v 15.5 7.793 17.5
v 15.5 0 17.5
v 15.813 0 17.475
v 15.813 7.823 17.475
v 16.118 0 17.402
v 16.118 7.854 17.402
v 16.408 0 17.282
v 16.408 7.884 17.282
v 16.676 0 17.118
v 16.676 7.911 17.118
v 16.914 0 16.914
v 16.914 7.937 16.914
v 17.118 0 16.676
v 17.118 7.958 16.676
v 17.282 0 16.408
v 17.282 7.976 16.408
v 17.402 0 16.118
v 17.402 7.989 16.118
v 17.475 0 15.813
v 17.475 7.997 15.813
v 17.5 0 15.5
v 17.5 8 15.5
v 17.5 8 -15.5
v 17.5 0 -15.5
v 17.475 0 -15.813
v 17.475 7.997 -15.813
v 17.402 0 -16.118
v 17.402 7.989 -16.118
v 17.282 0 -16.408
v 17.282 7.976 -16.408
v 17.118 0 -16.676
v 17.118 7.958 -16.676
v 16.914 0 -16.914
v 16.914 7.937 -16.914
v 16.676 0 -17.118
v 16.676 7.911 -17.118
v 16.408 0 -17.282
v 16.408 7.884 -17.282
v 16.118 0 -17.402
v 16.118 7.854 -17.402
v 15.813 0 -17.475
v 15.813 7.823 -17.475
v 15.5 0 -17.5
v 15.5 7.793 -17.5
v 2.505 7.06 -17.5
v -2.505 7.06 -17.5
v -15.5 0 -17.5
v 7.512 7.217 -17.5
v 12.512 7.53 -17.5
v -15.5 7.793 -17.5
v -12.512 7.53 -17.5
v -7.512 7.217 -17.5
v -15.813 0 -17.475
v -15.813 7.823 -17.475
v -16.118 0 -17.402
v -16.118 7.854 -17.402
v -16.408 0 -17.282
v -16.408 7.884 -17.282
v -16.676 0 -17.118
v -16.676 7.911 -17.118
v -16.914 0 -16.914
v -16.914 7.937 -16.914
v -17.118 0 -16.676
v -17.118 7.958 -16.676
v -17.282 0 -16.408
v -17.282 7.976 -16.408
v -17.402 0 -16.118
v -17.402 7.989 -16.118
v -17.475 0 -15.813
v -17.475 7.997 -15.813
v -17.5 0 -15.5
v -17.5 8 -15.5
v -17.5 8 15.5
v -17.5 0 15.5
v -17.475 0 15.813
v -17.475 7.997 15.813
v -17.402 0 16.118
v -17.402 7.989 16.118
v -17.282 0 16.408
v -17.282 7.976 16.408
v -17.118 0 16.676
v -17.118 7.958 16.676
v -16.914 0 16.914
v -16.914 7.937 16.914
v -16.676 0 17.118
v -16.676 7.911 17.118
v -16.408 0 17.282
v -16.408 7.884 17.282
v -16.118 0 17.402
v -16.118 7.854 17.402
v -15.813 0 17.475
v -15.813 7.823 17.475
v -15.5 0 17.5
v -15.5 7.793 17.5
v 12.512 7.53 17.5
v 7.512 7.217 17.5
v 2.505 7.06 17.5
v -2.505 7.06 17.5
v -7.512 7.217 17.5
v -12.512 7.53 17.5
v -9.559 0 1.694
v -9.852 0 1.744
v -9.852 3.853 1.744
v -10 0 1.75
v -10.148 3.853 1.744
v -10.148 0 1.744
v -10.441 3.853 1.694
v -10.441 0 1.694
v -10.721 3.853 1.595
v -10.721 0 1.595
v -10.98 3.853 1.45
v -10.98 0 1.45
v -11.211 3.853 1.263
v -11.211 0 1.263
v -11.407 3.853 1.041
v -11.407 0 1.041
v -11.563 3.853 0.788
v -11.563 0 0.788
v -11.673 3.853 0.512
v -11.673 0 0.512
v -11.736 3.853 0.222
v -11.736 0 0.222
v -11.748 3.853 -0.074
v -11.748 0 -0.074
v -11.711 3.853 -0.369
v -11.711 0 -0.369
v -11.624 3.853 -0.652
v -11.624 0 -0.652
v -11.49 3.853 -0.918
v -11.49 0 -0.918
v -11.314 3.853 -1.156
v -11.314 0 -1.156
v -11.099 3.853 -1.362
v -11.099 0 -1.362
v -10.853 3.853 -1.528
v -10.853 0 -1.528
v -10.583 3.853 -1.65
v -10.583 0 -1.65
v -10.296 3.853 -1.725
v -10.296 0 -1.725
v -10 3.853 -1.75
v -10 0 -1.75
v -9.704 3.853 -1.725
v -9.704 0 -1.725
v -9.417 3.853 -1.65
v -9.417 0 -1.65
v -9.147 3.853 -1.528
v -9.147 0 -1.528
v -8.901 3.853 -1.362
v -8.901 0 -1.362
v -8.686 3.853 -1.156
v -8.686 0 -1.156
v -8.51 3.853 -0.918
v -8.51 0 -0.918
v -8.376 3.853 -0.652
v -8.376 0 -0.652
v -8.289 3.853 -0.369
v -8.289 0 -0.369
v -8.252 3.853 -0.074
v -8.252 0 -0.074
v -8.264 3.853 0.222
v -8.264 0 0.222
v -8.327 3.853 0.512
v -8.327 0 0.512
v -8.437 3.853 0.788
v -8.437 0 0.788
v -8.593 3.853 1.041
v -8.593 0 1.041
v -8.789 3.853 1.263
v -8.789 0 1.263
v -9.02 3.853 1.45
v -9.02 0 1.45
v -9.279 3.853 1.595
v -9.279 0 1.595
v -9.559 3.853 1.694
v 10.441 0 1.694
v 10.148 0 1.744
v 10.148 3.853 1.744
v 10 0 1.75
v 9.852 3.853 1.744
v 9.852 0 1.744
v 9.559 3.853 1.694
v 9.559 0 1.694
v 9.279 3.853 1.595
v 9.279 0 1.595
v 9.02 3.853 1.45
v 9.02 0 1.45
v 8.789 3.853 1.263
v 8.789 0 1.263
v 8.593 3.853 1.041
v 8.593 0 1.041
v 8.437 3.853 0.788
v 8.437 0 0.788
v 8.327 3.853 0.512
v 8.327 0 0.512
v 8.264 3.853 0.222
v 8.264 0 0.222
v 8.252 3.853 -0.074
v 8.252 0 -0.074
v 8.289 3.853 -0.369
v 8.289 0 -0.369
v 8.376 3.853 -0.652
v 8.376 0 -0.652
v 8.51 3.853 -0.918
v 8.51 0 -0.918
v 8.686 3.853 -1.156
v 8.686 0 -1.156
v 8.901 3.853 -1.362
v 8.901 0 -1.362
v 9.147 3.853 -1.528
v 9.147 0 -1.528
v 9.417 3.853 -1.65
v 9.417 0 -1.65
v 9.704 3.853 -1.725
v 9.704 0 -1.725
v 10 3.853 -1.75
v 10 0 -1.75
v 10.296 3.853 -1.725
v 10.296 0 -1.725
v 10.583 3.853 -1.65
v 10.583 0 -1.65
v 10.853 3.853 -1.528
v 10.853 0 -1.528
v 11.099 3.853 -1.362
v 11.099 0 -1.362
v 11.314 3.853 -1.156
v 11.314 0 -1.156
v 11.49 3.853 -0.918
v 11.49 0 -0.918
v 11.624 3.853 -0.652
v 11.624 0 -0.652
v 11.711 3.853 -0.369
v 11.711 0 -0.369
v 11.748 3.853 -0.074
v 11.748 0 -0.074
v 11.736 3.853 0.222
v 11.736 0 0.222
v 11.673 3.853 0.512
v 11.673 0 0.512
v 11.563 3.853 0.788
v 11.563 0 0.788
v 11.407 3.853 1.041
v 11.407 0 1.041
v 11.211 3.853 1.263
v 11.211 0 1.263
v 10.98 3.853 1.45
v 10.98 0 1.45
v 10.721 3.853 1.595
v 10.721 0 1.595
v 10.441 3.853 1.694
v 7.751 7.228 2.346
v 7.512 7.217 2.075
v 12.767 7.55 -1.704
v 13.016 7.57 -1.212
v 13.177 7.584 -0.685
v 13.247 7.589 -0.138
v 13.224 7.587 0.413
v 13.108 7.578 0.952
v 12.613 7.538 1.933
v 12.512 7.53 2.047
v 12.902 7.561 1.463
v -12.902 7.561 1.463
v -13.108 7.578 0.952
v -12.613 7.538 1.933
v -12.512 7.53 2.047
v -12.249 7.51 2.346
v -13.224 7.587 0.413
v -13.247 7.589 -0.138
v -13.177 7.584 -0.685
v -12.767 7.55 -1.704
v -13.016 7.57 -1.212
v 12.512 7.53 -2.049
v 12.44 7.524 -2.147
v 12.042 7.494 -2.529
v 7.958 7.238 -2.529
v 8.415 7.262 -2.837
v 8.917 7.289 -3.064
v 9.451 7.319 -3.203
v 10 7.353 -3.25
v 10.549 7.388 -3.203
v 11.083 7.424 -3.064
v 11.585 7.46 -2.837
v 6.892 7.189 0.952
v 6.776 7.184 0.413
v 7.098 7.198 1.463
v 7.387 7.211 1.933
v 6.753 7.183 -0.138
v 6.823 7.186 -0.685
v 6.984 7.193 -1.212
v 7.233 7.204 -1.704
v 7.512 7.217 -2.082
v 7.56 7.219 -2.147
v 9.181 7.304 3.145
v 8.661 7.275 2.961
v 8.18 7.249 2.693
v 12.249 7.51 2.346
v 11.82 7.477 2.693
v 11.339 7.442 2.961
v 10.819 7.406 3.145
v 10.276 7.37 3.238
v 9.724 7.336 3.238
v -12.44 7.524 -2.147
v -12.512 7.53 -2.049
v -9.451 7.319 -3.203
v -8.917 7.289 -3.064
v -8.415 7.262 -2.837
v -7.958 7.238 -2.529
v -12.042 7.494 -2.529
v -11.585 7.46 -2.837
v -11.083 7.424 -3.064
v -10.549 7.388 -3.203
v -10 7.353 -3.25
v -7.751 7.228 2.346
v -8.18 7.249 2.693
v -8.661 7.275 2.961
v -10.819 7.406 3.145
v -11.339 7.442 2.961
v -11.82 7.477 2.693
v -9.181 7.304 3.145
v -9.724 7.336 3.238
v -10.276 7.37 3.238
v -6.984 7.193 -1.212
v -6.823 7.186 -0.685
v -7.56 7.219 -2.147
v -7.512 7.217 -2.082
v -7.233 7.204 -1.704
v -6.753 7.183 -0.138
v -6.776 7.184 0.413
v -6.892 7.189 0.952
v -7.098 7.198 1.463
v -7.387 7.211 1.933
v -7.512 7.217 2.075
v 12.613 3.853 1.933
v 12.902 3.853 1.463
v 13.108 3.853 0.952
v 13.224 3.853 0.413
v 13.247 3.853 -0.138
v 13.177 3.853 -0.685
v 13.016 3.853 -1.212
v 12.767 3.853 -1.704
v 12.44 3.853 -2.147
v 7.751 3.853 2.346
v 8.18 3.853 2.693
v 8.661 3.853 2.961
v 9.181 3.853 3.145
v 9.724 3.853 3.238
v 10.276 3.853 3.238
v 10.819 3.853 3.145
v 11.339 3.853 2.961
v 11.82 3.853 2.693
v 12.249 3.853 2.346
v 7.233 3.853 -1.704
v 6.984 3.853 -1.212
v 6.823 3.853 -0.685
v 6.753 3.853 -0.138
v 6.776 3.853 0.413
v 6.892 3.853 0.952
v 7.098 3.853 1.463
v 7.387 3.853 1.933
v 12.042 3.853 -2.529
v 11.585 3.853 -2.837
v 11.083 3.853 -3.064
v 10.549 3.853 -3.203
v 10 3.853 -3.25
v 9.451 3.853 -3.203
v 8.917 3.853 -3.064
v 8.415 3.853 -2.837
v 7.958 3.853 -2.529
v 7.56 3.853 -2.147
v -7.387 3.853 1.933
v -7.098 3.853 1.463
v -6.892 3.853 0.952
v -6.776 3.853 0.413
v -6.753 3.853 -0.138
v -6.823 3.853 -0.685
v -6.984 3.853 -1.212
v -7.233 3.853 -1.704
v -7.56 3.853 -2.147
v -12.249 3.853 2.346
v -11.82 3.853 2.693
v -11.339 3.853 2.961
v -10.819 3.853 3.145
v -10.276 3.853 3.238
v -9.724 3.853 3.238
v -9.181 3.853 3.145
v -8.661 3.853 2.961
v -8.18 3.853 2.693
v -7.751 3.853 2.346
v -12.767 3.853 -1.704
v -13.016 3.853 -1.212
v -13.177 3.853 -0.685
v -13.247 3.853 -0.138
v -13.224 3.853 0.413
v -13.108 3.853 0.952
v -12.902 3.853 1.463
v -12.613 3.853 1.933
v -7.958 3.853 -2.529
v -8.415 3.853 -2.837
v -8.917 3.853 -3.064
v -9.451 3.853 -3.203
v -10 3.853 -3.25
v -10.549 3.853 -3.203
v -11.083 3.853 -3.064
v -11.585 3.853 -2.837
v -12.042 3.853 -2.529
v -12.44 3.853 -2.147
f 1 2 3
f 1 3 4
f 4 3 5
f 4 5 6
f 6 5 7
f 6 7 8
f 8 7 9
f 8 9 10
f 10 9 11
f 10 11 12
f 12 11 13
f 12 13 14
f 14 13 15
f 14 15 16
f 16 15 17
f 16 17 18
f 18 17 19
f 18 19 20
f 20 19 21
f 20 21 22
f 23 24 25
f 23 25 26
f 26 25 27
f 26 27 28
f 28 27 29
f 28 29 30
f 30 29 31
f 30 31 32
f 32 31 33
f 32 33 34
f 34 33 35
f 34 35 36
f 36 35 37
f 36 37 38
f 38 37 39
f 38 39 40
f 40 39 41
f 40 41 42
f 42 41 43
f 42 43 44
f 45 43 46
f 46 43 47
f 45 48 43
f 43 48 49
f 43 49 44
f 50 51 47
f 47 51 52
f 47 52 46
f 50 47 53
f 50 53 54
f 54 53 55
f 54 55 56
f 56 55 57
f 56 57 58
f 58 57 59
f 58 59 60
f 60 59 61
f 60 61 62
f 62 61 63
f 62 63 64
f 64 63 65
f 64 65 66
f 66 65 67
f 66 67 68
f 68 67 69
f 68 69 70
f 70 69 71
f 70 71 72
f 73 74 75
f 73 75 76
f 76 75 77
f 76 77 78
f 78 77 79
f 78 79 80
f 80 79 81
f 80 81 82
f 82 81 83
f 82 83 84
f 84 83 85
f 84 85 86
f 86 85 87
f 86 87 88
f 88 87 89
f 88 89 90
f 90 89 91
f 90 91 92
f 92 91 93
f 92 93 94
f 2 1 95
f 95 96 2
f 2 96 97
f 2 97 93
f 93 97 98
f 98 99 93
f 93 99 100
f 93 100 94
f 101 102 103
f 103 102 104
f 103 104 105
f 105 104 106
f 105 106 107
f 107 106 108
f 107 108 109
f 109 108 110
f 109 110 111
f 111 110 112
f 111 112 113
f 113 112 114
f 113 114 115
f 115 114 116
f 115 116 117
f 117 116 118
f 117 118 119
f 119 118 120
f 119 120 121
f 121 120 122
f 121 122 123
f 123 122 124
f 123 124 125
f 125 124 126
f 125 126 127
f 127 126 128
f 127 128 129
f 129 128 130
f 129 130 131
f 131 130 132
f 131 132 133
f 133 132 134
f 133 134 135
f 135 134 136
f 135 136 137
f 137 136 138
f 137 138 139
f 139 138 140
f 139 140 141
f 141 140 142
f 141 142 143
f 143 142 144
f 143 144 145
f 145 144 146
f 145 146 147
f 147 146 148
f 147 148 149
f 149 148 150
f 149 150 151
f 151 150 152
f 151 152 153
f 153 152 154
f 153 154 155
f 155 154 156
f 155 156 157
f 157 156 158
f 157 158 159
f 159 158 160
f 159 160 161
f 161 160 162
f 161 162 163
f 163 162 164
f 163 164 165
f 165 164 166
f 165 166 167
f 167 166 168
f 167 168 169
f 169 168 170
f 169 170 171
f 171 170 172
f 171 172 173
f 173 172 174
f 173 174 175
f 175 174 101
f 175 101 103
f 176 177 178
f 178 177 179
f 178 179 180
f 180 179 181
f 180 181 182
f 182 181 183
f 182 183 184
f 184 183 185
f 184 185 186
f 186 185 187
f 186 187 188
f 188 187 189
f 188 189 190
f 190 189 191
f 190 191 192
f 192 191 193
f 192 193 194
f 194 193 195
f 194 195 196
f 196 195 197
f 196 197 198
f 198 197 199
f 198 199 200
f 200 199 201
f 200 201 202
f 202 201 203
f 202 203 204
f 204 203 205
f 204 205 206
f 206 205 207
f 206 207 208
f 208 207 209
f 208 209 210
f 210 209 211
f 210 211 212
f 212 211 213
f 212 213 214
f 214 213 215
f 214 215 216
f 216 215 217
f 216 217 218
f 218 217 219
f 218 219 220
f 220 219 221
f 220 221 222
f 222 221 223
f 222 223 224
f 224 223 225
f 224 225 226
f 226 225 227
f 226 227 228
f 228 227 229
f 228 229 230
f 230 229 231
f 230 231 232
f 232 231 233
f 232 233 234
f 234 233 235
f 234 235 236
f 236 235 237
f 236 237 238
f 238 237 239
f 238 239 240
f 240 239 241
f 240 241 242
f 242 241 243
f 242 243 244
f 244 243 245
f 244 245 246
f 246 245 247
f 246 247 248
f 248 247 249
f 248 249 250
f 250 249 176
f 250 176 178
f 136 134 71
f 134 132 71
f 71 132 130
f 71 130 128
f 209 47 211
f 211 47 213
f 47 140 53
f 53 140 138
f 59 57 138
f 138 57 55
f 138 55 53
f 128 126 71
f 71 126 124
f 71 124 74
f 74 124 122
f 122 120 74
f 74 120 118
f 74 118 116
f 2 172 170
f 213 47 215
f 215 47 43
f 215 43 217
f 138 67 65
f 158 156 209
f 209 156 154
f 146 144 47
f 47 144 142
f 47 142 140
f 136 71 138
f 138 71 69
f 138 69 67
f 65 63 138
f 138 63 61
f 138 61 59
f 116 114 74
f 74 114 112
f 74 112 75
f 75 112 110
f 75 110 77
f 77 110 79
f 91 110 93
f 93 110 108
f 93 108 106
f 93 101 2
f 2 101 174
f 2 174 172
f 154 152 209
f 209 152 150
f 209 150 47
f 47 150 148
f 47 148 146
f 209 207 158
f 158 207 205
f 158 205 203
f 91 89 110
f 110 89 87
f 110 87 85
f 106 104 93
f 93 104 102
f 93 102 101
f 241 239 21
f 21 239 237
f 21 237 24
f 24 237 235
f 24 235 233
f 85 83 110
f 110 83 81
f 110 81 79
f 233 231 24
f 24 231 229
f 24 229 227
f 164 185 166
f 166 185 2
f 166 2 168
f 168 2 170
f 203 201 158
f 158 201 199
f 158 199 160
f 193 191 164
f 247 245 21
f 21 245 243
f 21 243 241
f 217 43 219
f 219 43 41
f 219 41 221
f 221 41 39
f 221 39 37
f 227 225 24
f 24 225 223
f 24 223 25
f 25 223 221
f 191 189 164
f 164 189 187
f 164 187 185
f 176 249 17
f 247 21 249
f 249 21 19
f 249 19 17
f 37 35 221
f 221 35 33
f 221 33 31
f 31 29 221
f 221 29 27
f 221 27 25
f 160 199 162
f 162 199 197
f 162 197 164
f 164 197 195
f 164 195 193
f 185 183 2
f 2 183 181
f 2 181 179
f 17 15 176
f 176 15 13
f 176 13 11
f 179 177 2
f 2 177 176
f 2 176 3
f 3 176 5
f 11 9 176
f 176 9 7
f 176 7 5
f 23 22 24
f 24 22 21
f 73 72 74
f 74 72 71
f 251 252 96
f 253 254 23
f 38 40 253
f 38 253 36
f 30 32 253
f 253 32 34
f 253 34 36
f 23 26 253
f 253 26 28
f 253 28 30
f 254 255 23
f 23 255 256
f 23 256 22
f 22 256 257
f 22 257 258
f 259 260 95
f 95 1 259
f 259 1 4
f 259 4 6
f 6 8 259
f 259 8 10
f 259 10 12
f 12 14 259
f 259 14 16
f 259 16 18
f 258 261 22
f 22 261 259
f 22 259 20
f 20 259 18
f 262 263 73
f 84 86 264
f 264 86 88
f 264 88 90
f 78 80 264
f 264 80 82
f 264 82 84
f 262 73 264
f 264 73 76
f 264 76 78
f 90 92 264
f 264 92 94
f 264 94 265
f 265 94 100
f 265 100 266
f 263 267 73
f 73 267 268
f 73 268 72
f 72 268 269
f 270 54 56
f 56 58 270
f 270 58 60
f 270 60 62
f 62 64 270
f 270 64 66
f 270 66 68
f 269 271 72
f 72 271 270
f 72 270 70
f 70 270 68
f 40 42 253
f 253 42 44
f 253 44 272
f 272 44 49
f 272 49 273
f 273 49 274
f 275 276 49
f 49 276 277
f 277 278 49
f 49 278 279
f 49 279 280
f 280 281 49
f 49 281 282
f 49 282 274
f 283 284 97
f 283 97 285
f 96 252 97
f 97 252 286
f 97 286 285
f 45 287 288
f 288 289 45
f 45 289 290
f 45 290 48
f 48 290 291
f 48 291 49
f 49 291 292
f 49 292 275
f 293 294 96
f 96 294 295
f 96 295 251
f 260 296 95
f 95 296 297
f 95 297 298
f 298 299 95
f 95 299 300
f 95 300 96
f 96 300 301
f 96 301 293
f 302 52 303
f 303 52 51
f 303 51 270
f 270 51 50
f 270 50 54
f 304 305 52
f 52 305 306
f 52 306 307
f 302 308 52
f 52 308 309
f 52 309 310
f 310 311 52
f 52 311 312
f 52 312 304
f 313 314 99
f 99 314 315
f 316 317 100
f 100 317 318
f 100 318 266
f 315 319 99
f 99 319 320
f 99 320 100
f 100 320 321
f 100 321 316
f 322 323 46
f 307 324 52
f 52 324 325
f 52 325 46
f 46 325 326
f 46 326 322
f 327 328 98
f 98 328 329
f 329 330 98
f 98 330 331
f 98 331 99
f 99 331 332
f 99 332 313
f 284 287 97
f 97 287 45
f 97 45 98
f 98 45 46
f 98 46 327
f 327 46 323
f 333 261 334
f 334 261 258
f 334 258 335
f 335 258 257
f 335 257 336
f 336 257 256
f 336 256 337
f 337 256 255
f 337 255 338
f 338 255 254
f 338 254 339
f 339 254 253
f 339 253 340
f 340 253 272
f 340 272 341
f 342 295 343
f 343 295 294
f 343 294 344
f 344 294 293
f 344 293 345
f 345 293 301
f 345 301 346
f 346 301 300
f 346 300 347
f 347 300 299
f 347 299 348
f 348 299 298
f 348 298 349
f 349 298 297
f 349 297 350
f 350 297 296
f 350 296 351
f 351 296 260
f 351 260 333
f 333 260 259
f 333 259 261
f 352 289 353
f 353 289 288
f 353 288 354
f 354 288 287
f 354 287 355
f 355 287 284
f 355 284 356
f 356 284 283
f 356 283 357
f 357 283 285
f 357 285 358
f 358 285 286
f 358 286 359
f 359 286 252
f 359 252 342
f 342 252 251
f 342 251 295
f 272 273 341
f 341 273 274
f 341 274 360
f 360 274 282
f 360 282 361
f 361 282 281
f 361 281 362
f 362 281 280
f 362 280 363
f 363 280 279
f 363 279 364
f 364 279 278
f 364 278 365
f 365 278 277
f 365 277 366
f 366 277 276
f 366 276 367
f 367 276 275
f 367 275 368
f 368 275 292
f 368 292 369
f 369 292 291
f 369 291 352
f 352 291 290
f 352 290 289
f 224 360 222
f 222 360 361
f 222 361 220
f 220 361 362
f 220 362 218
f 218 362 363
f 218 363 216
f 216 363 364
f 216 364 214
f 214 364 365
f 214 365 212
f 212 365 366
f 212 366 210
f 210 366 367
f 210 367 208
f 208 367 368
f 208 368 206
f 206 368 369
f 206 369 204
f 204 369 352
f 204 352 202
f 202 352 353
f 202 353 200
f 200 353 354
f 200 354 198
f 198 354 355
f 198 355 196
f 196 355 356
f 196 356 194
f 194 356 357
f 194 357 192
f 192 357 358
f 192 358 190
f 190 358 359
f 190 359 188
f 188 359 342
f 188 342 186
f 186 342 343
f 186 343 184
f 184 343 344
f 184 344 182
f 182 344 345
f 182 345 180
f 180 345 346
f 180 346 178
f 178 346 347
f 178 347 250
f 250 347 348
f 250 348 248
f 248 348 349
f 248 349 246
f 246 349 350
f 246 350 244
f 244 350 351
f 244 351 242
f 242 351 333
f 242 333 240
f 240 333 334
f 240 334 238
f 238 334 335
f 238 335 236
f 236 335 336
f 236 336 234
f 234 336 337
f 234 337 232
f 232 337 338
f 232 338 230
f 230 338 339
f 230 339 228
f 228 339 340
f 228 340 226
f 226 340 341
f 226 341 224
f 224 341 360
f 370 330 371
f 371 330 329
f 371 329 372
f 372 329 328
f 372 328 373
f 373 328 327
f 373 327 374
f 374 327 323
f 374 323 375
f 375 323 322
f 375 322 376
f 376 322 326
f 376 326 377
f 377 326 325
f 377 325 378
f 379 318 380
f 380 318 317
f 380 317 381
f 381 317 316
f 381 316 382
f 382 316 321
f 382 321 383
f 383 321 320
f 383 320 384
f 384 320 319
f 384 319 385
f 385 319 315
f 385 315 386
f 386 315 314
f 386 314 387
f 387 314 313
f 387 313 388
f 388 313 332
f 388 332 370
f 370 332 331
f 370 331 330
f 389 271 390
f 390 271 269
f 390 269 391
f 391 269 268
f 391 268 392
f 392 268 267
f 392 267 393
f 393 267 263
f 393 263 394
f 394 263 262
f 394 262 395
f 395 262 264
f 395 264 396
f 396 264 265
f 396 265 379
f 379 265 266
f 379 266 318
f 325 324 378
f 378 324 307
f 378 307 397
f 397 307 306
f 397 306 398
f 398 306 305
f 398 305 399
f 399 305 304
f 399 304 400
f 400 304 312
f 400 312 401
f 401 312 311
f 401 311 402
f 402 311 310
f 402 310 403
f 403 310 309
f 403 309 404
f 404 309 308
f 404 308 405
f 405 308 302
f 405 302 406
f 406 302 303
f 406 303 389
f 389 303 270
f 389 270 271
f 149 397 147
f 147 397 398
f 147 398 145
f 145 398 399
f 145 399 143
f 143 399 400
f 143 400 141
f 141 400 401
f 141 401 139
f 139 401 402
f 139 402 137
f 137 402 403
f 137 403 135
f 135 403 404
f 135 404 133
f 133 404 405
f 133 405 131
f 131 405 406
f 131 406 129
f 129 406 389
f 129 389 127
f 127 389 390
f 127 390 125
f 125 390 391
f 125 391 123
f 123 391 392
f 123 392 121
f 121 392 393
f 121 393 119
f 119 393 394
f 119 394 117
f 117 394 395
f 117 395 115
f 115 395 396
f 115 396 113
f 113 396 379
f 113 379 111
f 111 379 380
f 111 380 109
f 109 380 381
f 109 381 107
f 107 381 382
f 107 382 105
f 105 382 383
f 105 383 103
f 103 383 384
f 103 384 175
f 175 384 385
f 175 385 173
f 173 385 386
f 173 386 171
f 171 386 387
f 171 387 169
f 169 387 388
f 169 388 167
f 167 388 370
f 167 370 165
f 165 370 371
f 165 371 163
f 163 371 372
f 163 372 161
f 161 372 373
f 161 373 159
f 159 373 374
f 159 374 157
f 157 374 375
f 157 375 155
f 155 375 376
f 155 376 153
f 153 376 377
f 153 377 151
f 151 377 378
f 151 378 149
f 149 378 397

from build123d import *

# Parameters (mm, degrees)
SKETCH_2_R               = 1.75
EXTRUDE_1_DEPTH          = 8
CUT_EXTRUDE_1_DEPTH      = 40.940580867
CUT_EXTRUDE_1_DEPTH_BACK = 40.940580867
CUT_EXTRUDE_2_DEPTH      = 3.5
CUT_EXTRUDE_2_DEPTH_BACK = 3.5
SKETCH_6_R               = 3.25


with BuildPart() as part:
    # Эскиз2 → Бобышка-Вытянуть1 (new body)
    with BuildSketch(Plane(origin=(0, 0, 0), x_dir=(-1, 0, 0), z_dir=(0, 1, 0))):
        with BuildLine():
            Line((5, -17.5), (-5, -17.5))
            Line((-5, -17.5), (-15.5, -17.5))
            ThreePointArc((-15.5, -17.5), (-16.914213562, -16.914213562), (-17.5, -15.5))
            Line((-17.5, -15.5), (-17.5, 15.5))
            ThreePointArc((-17.5, 15.5), (-16.914213562, 16.914213562), (-15.5, 17.5))
            Line((-15.5, 17.5), (-5, 17.5))
            Line((-5, 17.5), (5, 17.5))
            Line((5, 17.5), (15.5, 17.5))
            ThreePointArc((15.5, 17.5), (16.914213562, 16.914213562), (17.5, 15.5))
            Line((17.5, 15.5), (17.5, -15.5))
            ThreePointArc((17.5, -15.5), (16.914213562, -16.914213562), (15.5, -17.5))
            Line((15.5, -17.5), (5, -17.5))
        make_face()
        with Locations((10, 0)):
            Circle(SKETCH_2_R, mode=Mode.SUBTRACT)
        with Locations((-10, 0)):
            Circle(SKETCH_2_R, mode=Mode.SUBTRACT)
    extrude(amount=EXTRUDE_1_DEPTH)

    # Эскиз4 → Вырез-Вытянуть1 (cut, two sides: drawn at the far end of the back side and taken through both)
    with BuildSketch(Plane.XY.offset(17.5).offset(-CUT_EXTRUDE_1_DEPTH_BACK)):
        with BuildLine():
            Line((-98.814506181, 16.947453844), (-17.5, 8))
            ThreePointArc((-17.5, 8), (0, 7.040089286), (17.5, 8))
            Line((17.5, 8), (98.814506181, 16.947453844))
            Line((98.814506181, 16.947453844), (98.814506181, 180.558038412))
            Line((98.814506181, 180.558038412), (-98.814506181, 180.558038412))
            Line((-98.814506181, 180.558038412), (-98.814506181, 16.947453844))
        make_face()
    extrude(amount=CUT_EXTRUDE_1_DEPTH + CUT_EXTRUDE_1_DEPTH_BACK, mode=Mode.SUBTRACT)

    # Эскиз6 → Вырез-Вытянуть2 (cut, two sides: drawn at the far end of the back side and taken through both)
    with BuildSketch(Plane(origin=(0, 7.352932668, 0), x_dir=(-1, 0, 0), z_dir=(0, -1, 0)).offset(-CUT_EXTRUDE_2_DEPTH_BACK)):
        with Locations((10, 0)):
            Circle(SKETCH_6_R)
        with Locations((-10, 0)):
            Circle(SKETCH_6_R)
    extrude(amount=CUT_EXTRUDE_2_DEPTH + CUT_EXTRUDE_2_DEPTH_BACK, mode=Mode.SUBTRACT)


solid = part.part
